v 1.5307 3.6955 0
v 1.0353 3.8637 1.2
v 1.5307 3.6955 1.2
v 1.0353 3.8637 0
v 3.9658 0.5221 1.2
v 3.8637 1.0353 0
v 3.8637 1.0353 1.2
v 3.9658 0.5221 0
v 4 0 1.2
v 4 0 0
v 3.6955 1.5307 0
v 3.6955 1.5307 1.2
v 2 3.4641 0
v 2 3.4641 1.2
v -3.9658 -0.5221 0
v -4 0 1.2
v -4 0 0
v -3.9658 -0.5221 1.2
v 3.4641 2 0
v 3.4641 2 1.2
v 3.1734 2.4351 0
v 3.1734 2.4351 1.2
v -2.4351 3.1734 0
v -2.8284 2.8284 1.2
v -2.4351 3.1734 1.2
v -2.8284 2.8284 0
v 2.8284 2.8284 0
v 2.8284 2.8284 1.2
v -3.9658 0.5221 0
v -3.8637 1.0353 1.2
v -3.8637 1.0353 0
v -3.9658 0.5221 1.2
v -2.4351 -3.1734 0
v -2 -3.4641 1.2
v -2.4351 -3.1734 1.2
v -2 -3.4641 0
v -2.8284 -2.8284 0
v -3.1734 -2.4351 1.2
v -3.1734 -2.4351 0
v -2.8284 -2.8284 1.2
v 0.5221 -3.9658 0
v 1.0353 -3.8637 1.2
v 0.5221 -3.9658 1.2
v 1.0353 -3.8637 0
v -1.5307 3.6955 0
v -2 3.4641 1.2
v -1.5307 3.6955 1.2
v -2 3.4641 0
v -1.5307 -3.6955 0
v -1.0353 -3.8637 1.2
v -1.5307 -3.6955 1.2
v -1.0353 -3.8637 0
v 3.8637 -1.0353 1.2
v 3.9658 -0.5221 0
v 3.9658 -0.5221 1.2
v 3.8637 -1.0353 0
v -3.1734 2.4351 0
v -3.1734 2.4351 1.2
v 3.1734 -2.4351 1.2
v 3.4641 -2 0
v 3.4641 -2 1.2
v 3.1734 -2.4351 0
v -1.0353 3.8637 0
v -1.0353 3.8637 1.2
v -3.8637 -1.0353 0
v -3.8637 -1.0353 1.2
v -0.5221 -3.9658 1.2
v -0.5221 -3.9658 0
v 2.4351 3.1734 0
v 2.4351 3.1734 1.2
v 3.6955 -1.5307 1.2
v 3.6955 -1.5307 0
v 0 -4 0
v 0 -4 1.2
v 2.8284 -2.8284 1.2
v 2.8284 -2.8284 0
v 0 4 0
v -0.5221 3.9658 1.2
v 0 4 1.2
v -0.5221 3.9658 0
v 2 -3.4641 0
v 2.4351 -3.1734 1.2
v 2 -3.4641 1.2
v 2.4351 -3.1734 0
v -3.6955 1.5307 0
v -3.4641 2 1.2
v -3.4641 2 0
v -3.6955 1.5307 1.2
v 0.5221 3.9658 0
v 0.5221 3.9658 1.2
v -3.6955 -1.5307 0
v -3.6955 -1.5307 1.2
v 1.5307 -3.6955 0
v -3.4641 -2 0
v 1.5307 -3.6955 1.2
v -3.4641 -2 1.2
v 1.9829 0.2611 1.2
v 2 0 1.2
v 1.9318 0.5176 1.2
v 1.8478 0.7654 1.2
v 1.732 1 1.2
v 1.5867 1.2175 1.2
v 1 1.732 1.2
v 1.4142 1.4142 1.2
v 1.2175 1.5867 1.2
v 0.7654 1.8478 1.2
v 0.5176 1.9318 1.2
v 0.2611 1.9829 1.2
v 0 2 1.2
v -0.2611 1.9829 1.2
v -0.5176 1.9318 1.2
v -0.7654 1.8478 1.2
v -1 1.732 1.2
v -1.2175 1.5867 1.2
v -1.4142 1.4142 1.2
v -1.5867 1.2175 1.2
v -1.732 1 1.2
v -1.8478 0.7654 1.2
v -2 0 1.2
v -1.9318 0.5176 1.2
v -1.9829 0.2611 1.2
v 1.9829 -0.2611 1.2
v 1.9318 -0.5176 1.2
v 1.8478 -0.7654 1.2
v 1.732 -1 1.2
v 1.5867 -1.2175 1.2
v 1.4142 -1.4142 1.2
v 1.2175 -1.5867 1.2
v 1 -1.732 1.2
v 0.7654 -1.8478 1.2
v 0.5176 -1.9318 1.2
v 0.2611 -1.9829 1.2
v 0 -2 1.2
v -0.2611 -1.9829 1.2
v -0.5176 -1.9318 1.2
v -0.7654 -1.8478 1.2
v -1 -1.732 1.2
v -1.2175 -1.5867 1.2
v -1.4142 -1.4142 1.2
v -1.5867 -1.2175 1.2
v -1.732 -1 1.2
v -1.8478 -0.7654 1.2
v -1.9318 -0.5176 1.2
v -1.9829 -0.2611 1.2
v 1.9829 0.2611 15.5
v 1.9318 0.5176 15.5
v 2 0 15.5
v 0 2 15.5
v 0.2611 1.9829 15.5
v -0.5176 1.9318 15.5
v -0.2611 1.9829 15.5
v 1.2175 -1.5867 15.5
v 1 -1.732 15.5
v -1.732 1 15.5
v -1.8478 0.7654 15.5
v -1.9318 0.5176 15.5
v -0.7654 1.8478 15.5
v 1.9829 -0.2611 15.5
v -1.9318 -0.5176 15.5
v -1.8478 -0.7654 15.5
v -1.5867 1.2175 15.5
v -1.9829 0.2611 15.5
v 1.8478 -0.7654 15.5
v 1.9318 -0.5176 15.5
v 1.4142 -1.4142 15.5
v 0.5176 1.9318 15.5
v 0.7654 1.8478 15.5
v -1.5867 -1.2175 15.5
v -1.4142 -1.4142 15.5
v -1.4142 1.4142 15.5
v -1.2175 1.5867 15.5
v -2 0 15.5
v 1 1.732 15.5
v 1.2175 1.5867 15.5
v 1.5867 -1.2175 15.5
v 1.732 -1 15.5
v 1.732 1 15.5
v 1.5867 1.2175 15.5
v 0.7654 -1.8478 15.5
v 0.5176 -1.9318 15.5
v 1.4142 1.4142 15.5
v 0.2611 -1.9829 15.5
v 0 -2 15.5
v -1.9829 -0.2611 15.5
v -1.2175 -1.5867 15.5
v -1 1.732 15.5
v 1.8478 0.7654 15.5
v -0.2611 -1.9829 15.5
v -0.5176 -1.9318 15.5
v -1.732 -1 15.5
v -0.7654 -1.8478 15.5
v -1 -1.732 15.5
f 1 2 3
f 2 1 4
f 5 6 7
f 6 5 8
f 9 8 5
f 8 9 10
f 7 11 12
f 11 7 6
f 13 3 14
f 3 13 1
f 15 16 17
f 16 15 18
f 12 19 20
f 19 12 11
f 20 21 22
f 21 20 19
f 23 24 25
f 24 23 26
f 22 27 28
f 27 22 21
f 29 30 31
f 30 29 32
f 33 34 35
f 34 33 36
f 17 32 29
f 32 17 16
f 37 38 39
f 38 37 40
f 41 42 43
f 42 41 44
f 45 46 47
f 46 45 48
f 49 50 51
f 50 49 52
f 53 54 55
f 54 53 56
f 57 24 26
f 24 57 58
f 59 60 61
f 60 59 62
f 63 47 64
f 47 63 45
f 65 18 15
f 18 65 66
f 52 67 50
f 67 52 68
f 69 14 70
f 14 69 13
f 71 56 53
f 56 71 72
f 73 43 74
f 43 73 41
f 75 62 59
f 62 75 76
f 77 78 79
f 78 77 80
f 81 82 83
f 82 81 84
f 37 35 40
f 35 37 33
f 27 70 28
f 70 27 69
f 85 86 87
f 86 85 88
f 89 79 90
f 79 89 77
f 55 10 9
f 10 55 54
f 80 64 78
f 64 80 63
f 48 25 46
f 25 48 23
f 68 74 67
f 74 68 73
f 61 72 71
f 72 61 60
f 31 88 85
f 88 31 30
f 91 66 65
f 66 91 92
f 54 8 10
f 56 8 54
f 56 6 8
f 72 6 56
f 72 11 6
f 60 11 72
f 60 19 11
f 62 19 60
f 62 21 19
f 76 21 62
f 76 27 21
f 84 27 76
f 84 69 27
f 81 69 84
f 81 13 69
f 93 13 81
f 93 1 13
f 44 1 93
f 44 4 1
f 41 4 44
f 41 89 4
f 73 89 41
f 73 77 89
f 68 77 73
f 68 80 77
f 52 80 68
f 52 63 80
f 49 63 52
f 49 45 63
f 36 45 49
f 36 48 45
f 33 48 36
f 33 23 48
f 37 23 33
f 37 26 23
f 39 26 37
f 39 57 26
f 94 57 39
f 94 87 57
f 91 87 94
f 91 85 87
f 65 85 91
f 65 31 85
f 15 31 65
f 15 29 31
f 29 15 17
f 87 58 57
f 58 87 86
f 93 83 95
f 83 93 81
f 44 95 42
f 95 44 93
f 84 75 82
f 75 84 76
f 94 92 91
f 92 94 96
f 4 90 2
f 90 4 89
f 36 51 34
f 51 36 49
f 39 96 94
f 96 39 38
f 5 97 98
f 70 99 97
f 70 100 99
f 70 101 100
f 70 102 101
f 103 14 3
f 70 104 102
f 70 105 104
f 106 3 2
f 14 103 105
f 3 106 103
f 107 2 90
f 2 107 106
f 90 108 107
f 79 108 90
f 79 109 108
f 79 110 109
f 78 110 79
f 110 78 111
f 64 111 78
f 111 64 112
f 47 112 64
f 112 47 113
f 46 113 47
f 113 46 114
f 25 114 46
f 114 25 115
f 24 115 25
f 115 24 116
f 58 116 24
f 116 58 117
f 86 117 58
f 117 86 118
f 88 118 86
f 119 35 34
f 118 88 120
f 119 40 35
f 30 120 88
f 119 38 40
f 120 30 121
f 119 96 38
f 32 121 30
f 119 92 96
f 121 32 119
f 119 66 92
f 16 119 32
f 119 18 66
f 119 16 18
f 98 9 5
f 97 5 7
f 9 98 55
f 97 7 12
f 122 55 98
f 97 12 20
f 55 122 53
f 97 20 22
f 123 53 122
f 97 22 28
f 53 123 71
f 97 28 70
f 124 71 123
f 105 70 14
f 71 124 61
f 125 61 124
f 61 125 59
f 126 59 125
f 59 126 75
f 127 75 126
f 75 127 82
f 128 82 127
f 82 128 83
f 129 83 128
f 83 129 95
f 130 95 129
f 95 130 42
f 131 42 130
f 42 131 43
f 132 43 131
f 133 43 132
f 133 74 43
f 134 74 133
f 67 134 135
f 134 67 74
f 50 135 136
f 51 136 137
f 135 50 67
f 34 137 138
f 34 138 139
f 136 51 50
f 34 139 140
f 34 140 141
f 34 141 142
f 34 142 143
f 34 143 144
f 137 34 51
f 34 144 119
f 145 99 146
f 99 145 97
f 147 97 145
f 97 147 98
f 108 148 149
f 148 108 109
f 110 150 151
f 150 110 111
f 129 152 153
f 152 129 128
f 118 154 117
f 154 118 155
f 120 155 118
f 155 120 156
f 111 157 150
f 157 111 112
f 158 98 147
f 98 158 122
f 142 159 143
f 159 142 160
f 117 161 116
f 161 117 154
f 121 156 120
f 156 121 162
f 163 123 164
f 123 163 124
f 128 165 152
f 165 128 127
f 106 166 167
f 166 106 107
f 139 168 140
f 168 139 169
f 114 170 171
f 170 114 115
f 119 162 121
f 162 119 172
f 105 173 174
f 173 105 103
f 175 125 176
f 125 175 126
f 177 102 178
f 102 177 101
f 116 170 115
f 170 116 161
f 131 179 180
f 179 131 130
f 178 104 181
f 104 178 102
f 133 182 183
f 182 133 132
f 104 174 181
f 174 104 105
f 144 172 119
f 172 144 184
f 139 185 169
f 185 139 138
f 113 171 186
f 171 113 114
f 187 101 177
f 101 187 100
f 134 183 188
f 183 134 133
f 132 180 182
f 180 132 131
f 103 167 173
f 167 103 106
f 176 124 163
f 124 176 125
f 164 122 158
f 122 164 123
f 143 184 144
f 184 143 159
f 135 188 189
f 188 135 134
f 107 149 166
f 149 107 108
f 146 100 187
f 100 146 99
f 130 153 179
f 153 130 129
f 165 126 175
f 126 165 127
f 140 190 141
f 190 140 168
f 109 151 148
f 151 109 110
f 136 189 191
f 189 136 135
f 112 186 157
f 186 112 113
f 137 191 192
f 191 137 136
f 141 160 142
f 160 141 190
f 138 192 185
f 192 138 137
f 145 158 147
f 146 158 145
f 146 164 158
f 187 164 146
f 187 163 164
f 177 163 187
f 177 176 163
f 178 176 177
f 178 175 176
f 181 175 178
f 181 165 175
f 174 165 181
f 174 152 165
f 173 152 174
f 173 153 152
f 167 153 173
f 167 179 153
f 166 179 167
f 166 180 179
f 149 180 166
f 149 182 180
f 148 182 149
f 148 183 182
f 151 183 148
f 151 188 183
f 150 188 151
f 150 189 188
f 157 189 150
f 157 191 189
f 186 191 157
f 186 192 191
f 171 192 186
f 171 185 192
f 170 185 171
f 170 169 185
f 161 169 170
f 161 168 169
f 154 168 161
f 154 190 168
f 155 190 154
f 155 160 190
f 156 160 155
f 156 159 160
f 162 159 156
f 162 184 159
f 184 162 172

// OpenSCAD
// file: common.scad
// Hexboard overlay — shared dimensions and part modules.
// All values hardcoded in mm. z = 0 is the iPad glass. Hexes are pointy-top (a vertex points along +Y),
// matching the app's key grid (app/js/geometry.js).

$fn = 48;

// ---------- grid ----------
PITCH   = 24.15;                 // key centre-to-centre
ROW     = PITCH * sqrt(3) / 2;   // 20.914 between rows

// ---------- cap (translucent PETG) ----------
CAP_FLAT   = 21.0;   // outer flat-to-flat
CAP_H      = 9.0;
CAP_WALL   = 1.2;
CAP_TOP    = 1.6;    // top thickness
CAP_HOLE   = 4.3;    // stem through-hole
CB_D       = 8.4;    // counterbore for plunger head
CB_DEPTH   = 1.2;

// ---------- plunger (conductive PLA) ----------
HEAD_D     = 8.0;
HEAD_H     = 1.2;
STEM_D     = 4.0;
STEM_L     = 14.3;   // below the head

// ---------- tip cup (conductive PLA) + conductive foam ----------
CUP_D      = 7.5;
CUP_H      = 4.5;
SOCKET_D   = 4.05;   // press fit on the stem
SOCKET_DEPTH = 2.0;
POCKET_D   = 6.2;    // holds a 6 mm conductive foam disc
POCKET_DEPTH = 2.0;
FOAM_PROTRUDE = 1.5; // foam below the cup (foam disc 6 x 3.5 mm)

// ---------- vertical stack (rest position) ----------
REST_GAP     = 2.0;                                  // foam to glass at rest
CUP_TOP_Z    = REST_GAP + FOAM_PROTRUDE + CUP_H;     // 8.0: cup stops under the spider
SPIDER_Z     = CUP_TOP_Z;                            // spider bottom = plate bottom
SPIDER_T     = 1.5;
TRAVEL_STOP  = 3.0;                                  // cap bottom to spider at rest
CAP_BOTTOM_Z = SPIDER_Z + SPIDER_T + TRAVEL_STOP;    // 12.5
CAP_TOP_Z    = CAP_BOTTOM_Z + CAP_H;                 // 21.5
PLATE_TOP_Z  = CAP_TOP_Z - 2.0;                      // 19.5: caps stand 2 mm proud
// Pressed to the stop: foam is 1 mm into the glass (compressed), which is the pressure range.

// ---------- bore + spider (part of each housing) ----------
BORE_FLAT    = 21.4;  // 0.2 mm clearance per side
SPIDER_RING_ID = 4.6; // stem slides through
SPIDER_RING_OD = 9.0; // spring seat (spring: 0.5 mm wire, 7 mm OD, ~15 mm free length)
SPOKE_W      = 1.2;

// ---------- iPad Air 4 (A2316) ----------
IPAD_W   = 247.6;
IPAD_H   = 178.5;
IPAD_T   = 6.1;
IPAD_R   = 18.0;     // corner radius (approximate: measure yours)
SCREEN_W = 227.06;   // 2360 px / 264 ppi
SCREEN_H = 157.79;   // 1640 px / 264 ppi
STRIP    = 18.0;     // uncovered control strip along the top edge of the screen
// Key grid centre relative to screen centre (y up): matches app geometry.
GRID_Y   = -(SCREEN_H + STRIP) / 2 + SCREEN_H / 2;   // -9.0

// ---------- helpers ----------
module hex(flat, h) { rotate([0, 0, 30]) cylinder(r = flat / sqrt(3), h = h, $fn = 6); }

// Key centres for the 51-key grid: 6 rows of 9 / 8 keys, row 0 nearest the player.
function key_q(r, j) = (r % 2 == 1) ? j - 3.5 : j - 4;
function key_pos(r, j) = [key_q(r, j) * PITCH, GRID_Y + (r - 2.5) * ROW];

// ---------- parts ----------
// Cap: hollow hex, open at the bottom. Print top-down (top face on the bed).
module cap() {
  difference() {
    hex(CAP_FLAT, CAP_H);
    translate([0, 0, -0.01]) hex(CAP_FLAT - 2 * CAP_WALL, CAP_H - CAP_TOP);
    translate([0, 0, -1]) cylinder(d = CAP_HOLE, h = CAP_H + 2);
    translate([0, 0, CAP_H - CB_DEPTH]) cylinder(d = CB_D, h = CB_DEPTH + 1);
    // soft top edge
    translate([0, 0, CAP_H - 0.8])
      difference() { hex(CAP_FLAT + 2, 2); hex_chamfer(); }
  }
}
module hex_chamfer() {
  rotate([0, 0, 30]) cylinder(r1 = CAP_FLAT / sqrt(3), r2 = (CAP_FLAT - 1.6) / sqrt(3), h = 0.8, $fn = 6);
}

// Plunger: head sits flush in the cap's counterbore; stem runs down through the spider.
// Print head-down.
module plunger() {
  cylinder(d = HEAD_D, h = HEAD_H);
  cylinder(d = STEM_D, h = HEAD_H + STEM_L);
}

// Tip cup: socket on top (stem), pocket underneath (foam). Print socket-up.
module tip_cup() {
  difference() {
    cylinder(d = CUP_D, h = CUP_H);
    translate([0, 0, -0.01]) cylinder(d = POCKET_D, h = POCKET_DEPTH);
    translate([0, 0, CUP_H - SOCKET_DEPTH]) cylinder(d = SOCKET_D, h = SOCKET_DEPTH + 1);
  }
}

// Spider: three spokes from the bore wall to the spring-seat ring. Positioned at z = SPIDER_Z.
module spider() {
  translate([0, 0, SPIDER_Z]) {
    difference() {
      cylinder(d = SPIDER_RING_OD, h = SPIDER_T);
      translate([0, 0, -1]) cylinder(d = SPIDER_RING_ID, h = SPIDER_T + 2);
    }
    for (a = [0, 120, 240]) rotate([0, 0, a])   // toward the bore's flat sides
      translate([SPIDER_RING_OD / 2 - 0.5, -SPOKE_W / 2, 0])
        cube([BORE_FLAT / 2 - SPIDER_RING_OD / 2 + 1.5, SPOKE_W, SPIDER_T]);
  }
}

// Bore cut-out (through the plate), used with difference().
module bore() { translate([0, 0, SPIDER_Z - 1]) hex(BORE_FLAT, PLATE_TOP_Z - SPIDER_Z + 2); }

// Whole key assembly at rest, for previews.
module key_assembly() {
  color([0.6, 0.9, 0.8, 0.6]) translate([0, 0, CAP_BOTTOM_Z]) cap();
  color("dimgray") translate([0, 0, CAP_TOP_Z]) mirror([0, 0, 1]) plunger();
  color("dimgray") translate([0, 0, CUP_TOP_Z - CUP_H]) tip_cup();
  color("black") translate([0, 0, REST_GAP]) cylinder(d = 6, h = FOAM_PROTRUDE + POCKET_DEPTH);
}
// main file
// Plunger — conductive PLA. Print head-down, no supports, 0.12–0.16 mm layers.
// Your finger touches the head; current runs down the stem to the tip cup and foam.
include <common.scad>
plunger();
